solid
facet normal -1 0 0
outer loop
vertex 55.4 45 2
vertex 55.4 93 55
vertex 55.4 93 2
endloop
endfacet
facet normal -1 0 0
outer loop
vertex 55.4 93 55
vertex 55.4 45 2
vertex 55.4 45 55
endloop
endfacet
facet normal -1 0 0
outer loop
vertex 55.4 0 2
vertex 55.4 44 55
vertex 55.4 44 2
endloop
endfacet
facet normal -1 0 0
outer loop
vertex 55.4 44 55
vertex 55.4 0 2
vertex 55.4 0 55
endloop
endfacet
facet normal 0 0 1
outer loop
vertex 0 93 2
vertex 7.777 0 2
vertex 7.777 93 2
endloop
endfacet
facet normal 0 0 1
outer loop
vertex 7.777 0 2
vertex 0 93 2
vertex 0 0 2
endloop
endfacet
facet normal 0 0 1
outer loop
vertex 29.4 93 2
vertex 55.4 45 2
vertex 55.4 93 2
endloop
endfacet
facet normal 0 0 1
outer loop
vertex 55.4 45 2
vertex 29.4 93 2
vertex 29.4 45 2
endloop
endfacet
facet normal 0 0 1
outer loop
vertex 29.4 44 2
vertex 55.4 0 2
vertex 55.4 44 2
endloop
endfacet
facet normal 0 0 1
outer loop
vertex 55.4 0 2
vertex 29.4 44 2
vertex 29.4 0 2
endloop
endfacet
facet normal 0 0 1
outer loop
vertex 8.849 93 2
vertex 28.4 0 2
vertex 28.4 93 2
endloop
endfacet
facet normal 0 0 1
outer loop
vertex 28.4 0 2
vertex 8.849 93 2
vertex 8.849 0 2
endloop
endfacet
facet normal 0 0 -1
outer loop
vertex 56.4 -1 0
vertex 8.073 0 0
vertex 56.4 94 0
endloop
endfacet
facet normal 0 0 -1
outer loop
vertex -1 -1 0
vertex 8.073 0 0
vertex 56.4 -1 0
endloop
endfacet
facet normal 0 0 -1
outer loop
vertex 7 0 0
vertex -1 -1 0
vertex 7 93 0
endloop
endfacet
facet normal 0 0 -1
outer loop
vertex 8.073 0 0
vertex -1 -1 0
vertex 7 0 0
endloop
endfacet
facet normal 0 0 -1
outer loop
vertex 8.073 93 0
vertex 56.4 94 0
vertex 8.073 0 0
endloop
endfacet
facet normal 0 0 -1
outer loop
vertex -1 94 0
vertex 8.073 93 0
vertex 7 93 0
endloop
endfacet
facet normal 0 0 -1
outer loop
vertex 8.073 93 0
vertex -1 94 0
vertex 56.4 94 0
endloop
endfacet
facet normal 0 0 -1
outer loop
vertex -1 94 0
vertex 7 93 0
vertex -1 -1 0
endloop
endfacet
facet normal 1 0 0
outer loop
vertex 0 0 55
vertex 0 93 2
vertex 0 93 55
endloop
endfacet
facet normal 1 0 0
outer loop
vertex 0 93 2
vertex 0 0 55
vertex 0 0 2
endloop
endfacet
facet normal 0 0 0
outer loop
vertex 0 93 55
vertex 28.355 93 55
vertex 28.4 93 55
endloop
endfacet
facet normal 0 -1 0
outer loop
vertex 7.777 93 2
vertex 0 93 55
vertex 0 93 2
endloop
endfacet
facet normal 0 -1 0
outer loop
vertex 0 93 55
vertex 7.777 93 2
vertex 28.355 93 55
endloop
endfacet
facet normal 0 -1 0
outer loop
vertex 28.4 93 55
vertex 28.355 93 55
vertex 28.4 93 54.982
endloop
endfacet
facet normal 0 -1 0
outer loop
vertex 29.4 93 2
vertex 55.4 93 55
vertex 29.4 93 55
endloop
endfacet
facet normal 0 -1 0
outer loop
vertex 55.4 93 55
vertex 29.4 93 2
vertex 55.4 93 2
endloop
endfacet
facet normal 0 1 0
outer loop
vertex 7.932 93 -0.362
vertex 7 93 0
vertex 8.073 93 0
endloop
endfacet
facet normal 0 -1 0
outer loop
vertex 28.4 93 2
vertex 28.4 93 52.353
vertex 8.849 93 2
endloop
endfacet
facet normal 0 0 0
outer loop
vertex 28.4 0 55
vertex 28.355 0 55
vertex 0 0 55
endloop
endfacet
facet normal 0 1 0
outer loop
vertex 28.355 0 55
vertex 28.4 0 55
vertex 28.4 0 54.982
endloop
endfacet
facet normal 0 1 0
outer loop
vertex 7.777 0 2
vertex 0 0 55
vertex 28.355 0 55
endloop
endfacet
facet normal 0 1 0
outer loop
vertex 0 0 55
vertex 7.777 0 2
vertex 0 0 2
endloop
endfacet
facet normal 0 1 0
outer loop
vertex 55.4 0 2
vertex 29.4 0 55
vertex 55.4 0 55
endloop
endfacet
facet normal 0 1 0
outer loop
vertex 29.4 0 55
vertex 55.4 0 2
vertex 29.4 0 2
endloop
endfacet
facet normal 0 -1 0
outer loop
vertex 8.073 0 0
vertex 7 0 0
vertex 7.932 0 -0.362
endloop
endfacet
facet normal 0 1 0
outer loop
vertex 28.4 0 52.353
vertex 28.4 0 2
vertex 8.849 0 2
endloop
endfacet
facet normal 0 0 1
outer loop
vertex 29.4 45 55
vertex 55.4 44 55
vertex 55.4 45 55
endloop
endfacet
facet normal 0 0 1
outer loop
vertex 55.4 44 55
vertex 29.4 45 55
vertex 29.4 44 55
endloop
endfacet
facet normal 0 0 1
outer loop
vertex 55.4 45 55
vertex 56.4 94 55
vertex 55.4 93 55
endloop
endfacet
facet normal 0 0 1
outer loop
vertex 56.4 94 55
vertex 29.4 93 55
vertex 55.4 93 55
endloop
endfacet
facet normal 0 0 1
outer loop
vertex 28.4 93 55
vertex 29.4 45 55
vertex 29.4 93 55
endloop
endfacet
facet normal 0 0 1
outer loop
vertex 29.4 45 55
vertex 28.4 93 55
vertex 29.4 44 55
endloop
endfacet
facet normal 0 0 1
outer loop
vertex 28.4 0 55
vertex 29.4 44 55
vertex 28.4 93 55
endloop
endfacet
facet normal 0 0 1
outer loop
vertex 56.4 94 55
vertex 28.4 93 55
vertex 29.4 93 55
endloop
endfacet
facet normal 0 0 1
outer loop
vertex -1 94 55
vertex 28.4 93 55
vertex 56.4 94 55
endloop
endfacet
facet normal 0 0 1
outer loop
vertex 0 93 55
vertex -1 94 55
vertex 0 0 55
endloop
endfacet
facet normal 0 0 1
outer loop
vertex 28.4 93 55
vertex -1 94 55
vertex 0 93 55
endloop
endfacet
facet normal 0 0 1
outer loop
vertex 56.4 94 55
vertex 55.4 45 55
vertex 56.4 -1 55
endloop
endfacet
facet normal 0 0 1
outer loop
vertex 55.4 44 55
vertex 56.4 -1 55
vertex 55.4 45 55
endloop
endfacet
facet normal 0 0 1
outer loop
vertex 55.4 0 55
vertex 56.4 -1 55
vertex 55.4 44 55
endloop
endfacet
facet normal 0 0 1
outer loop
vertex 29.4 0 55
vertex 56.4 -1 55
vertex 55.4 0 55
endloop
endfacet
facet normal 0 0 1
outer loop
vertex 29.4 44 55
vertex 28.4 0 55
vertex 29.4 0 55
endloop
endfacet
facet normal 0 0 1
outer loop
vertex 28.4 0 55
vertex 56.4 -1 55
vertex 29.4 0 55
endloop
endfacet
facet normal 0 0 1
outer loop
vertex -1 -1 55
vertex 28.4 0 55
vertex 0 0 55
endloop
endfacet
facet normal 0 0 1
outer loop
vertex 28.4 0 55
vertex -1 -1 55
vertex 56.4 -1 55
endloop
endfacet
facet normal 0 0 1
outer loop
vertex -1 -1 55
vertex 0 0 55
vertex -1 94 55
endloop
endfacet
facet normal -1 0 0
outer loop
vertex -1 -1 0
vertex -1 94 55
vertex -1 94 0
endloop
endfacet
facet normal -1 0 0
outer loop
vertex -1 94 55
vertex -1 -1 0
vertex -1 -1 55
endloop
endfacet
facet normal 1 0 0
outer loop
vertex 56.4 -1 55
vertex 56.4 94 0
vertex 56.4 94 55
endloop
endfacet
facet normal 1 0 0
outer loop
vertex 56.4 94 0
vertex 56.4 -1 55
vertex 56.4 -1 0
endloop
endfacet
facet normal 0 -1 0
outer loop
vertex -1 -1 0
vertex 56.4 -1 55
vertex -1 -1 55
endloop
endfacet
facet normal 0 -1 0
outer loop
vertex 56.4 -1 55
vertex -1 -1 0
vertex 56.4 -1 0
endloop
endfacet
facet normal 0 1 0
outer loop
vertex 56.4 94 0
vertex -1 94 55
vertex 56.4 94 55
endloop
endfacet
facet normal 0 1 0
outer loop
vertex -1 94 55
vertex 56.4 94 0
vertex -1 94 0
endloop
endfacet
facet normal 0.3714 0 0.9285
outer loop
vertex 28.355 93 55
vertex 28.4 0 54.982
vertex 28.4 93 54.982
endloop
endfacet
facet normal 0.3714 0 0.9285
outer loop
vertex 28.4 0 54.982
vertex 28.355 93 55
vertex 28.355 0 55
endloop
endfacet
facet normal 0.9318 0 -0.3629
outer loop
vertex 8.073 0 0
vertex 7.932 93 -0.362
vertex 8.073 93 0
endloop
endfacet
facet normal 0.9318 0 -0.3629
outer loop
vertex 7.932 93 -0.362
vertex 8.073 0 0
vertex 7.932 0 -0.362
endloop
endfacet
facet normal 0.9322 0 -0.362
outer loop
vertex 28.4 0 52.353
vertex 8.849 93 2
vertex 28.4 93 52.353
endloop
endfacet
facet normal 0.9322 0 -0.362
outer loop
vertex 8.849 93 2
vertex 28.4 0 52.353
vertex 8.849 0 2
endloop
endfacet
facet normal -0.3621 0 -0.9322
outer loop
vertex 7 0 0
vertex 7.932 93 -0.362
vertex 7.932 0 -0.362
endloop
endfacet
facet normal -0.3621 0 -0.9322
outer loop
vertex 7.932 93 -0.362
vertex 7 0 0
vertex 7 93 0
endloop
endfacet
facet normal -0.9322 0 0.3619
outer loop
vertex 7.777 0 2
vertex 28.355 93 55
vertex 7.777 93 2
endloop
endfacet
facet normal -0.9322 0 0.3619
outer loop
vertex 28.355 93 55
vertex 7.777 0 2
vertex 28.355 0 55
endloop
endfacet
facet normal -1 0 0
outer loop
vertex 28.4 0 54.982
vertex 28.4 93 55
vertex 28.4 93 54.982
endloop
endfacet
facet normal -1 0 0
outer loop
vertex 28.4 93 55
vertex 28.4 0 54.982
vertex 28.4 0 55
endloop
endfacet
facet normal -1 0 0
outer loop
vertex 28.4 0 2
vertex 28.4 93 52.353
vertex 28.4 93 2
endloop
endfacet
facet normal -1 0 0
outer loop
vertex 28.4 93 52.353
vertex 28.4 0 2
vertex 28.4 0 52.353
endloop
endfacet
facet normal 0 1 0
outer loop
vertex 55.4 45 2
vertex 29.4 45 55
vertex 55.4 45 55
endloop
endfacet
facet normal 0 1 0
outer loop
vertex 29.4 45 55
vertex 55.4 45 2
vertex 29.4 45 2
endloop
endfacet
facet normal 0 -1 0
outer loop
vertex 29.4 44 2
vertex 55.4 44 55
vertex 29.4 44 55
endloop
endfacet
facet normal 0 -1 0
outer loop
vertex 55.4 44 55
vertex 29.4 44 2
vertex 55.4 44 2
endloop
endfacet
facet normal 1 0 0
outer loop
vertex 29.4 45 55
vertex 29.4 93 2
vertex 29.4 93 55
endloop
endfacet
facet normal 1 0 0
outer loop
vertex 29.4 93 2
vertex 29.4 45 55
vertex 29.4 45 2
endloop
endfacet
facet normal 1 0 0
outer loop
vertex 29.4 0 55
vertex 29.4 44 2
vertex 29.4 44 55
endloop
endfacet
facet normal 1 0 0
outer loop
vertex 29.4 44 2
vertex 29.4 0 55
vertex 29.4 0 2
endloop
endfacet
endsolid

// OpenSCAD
// Okay we've made a drawing... lets build it
// Everything is in mm

delta_w = 1; // mm
bottom_height = 2; // mm


inner_width_box = 55.4;
inner_length_box = 93;
inner_height_box = 55; // Note it should be open at the top

outer_width_box = inner_width_box + 2 * delta_w; // mm
outer_length_box = inner_length_box + 2 * delta_w; // mm
outer_height_box = 57; // mm

// Slanted pannel definition
slanted_pannel_width = 59;
slanted_pannel_offset = 7;
slanted_pannel_angle = 90-68.78;

// Slanted pannel support
x_offset_support = 28.4;

// Mid wall definition
width_mid_wall = 27;
x_offset_mid_wall = 28.4;
y_offset_mid_wall = 44;
height_mid_wall = inner_height_box;

// I know this is cumbersone. I could substract two cubes from each other. But I wanted to try it this way
// The bottom
cube([inner_width_box, inner_length_box, bottom_height],center=false);
// left wall
translate([-delta_w, 0, 0]){
    cube([delta_w, inner_length_box, inner_height_box],center=false);
}
// right wall
translate([inner_width_box, 0, 0]){
    cube([delta_w, inner_length_box, inner_height_box],center=false);
}
// bottom wall
translate([-delta_w, -delta_w, 0]){
    cube([outer_width_box, delta_w, inner_height_box],center=false);
}
// top wall
translate([-delta_w, inner_length_box, 0]){
    cube([outer_width_box, delta_w, inner_height_box],center=false);
}

// This designs the slanted pannel which is used to hold the cards
translate([slanted_pannel_offset, 0, 0]){
    rotate([0, slanted_pannel_angle, 0]){
        cube([delta_w, inner_length_box, slanted_pannel_width],center=false);
    }
}

// Now for a wall to separate the player tokens and the tiles
translate([x_offset_mid_wall, y_offset_mid_wall, 0]){
    cube([width_mid_wall, delta_w, inner_height_box],center=false);
}

translate([x_offset_mid_wall, 0, 0]){
    cube([delta_w, inner_length_box, inner_height_box],center=false);
}
